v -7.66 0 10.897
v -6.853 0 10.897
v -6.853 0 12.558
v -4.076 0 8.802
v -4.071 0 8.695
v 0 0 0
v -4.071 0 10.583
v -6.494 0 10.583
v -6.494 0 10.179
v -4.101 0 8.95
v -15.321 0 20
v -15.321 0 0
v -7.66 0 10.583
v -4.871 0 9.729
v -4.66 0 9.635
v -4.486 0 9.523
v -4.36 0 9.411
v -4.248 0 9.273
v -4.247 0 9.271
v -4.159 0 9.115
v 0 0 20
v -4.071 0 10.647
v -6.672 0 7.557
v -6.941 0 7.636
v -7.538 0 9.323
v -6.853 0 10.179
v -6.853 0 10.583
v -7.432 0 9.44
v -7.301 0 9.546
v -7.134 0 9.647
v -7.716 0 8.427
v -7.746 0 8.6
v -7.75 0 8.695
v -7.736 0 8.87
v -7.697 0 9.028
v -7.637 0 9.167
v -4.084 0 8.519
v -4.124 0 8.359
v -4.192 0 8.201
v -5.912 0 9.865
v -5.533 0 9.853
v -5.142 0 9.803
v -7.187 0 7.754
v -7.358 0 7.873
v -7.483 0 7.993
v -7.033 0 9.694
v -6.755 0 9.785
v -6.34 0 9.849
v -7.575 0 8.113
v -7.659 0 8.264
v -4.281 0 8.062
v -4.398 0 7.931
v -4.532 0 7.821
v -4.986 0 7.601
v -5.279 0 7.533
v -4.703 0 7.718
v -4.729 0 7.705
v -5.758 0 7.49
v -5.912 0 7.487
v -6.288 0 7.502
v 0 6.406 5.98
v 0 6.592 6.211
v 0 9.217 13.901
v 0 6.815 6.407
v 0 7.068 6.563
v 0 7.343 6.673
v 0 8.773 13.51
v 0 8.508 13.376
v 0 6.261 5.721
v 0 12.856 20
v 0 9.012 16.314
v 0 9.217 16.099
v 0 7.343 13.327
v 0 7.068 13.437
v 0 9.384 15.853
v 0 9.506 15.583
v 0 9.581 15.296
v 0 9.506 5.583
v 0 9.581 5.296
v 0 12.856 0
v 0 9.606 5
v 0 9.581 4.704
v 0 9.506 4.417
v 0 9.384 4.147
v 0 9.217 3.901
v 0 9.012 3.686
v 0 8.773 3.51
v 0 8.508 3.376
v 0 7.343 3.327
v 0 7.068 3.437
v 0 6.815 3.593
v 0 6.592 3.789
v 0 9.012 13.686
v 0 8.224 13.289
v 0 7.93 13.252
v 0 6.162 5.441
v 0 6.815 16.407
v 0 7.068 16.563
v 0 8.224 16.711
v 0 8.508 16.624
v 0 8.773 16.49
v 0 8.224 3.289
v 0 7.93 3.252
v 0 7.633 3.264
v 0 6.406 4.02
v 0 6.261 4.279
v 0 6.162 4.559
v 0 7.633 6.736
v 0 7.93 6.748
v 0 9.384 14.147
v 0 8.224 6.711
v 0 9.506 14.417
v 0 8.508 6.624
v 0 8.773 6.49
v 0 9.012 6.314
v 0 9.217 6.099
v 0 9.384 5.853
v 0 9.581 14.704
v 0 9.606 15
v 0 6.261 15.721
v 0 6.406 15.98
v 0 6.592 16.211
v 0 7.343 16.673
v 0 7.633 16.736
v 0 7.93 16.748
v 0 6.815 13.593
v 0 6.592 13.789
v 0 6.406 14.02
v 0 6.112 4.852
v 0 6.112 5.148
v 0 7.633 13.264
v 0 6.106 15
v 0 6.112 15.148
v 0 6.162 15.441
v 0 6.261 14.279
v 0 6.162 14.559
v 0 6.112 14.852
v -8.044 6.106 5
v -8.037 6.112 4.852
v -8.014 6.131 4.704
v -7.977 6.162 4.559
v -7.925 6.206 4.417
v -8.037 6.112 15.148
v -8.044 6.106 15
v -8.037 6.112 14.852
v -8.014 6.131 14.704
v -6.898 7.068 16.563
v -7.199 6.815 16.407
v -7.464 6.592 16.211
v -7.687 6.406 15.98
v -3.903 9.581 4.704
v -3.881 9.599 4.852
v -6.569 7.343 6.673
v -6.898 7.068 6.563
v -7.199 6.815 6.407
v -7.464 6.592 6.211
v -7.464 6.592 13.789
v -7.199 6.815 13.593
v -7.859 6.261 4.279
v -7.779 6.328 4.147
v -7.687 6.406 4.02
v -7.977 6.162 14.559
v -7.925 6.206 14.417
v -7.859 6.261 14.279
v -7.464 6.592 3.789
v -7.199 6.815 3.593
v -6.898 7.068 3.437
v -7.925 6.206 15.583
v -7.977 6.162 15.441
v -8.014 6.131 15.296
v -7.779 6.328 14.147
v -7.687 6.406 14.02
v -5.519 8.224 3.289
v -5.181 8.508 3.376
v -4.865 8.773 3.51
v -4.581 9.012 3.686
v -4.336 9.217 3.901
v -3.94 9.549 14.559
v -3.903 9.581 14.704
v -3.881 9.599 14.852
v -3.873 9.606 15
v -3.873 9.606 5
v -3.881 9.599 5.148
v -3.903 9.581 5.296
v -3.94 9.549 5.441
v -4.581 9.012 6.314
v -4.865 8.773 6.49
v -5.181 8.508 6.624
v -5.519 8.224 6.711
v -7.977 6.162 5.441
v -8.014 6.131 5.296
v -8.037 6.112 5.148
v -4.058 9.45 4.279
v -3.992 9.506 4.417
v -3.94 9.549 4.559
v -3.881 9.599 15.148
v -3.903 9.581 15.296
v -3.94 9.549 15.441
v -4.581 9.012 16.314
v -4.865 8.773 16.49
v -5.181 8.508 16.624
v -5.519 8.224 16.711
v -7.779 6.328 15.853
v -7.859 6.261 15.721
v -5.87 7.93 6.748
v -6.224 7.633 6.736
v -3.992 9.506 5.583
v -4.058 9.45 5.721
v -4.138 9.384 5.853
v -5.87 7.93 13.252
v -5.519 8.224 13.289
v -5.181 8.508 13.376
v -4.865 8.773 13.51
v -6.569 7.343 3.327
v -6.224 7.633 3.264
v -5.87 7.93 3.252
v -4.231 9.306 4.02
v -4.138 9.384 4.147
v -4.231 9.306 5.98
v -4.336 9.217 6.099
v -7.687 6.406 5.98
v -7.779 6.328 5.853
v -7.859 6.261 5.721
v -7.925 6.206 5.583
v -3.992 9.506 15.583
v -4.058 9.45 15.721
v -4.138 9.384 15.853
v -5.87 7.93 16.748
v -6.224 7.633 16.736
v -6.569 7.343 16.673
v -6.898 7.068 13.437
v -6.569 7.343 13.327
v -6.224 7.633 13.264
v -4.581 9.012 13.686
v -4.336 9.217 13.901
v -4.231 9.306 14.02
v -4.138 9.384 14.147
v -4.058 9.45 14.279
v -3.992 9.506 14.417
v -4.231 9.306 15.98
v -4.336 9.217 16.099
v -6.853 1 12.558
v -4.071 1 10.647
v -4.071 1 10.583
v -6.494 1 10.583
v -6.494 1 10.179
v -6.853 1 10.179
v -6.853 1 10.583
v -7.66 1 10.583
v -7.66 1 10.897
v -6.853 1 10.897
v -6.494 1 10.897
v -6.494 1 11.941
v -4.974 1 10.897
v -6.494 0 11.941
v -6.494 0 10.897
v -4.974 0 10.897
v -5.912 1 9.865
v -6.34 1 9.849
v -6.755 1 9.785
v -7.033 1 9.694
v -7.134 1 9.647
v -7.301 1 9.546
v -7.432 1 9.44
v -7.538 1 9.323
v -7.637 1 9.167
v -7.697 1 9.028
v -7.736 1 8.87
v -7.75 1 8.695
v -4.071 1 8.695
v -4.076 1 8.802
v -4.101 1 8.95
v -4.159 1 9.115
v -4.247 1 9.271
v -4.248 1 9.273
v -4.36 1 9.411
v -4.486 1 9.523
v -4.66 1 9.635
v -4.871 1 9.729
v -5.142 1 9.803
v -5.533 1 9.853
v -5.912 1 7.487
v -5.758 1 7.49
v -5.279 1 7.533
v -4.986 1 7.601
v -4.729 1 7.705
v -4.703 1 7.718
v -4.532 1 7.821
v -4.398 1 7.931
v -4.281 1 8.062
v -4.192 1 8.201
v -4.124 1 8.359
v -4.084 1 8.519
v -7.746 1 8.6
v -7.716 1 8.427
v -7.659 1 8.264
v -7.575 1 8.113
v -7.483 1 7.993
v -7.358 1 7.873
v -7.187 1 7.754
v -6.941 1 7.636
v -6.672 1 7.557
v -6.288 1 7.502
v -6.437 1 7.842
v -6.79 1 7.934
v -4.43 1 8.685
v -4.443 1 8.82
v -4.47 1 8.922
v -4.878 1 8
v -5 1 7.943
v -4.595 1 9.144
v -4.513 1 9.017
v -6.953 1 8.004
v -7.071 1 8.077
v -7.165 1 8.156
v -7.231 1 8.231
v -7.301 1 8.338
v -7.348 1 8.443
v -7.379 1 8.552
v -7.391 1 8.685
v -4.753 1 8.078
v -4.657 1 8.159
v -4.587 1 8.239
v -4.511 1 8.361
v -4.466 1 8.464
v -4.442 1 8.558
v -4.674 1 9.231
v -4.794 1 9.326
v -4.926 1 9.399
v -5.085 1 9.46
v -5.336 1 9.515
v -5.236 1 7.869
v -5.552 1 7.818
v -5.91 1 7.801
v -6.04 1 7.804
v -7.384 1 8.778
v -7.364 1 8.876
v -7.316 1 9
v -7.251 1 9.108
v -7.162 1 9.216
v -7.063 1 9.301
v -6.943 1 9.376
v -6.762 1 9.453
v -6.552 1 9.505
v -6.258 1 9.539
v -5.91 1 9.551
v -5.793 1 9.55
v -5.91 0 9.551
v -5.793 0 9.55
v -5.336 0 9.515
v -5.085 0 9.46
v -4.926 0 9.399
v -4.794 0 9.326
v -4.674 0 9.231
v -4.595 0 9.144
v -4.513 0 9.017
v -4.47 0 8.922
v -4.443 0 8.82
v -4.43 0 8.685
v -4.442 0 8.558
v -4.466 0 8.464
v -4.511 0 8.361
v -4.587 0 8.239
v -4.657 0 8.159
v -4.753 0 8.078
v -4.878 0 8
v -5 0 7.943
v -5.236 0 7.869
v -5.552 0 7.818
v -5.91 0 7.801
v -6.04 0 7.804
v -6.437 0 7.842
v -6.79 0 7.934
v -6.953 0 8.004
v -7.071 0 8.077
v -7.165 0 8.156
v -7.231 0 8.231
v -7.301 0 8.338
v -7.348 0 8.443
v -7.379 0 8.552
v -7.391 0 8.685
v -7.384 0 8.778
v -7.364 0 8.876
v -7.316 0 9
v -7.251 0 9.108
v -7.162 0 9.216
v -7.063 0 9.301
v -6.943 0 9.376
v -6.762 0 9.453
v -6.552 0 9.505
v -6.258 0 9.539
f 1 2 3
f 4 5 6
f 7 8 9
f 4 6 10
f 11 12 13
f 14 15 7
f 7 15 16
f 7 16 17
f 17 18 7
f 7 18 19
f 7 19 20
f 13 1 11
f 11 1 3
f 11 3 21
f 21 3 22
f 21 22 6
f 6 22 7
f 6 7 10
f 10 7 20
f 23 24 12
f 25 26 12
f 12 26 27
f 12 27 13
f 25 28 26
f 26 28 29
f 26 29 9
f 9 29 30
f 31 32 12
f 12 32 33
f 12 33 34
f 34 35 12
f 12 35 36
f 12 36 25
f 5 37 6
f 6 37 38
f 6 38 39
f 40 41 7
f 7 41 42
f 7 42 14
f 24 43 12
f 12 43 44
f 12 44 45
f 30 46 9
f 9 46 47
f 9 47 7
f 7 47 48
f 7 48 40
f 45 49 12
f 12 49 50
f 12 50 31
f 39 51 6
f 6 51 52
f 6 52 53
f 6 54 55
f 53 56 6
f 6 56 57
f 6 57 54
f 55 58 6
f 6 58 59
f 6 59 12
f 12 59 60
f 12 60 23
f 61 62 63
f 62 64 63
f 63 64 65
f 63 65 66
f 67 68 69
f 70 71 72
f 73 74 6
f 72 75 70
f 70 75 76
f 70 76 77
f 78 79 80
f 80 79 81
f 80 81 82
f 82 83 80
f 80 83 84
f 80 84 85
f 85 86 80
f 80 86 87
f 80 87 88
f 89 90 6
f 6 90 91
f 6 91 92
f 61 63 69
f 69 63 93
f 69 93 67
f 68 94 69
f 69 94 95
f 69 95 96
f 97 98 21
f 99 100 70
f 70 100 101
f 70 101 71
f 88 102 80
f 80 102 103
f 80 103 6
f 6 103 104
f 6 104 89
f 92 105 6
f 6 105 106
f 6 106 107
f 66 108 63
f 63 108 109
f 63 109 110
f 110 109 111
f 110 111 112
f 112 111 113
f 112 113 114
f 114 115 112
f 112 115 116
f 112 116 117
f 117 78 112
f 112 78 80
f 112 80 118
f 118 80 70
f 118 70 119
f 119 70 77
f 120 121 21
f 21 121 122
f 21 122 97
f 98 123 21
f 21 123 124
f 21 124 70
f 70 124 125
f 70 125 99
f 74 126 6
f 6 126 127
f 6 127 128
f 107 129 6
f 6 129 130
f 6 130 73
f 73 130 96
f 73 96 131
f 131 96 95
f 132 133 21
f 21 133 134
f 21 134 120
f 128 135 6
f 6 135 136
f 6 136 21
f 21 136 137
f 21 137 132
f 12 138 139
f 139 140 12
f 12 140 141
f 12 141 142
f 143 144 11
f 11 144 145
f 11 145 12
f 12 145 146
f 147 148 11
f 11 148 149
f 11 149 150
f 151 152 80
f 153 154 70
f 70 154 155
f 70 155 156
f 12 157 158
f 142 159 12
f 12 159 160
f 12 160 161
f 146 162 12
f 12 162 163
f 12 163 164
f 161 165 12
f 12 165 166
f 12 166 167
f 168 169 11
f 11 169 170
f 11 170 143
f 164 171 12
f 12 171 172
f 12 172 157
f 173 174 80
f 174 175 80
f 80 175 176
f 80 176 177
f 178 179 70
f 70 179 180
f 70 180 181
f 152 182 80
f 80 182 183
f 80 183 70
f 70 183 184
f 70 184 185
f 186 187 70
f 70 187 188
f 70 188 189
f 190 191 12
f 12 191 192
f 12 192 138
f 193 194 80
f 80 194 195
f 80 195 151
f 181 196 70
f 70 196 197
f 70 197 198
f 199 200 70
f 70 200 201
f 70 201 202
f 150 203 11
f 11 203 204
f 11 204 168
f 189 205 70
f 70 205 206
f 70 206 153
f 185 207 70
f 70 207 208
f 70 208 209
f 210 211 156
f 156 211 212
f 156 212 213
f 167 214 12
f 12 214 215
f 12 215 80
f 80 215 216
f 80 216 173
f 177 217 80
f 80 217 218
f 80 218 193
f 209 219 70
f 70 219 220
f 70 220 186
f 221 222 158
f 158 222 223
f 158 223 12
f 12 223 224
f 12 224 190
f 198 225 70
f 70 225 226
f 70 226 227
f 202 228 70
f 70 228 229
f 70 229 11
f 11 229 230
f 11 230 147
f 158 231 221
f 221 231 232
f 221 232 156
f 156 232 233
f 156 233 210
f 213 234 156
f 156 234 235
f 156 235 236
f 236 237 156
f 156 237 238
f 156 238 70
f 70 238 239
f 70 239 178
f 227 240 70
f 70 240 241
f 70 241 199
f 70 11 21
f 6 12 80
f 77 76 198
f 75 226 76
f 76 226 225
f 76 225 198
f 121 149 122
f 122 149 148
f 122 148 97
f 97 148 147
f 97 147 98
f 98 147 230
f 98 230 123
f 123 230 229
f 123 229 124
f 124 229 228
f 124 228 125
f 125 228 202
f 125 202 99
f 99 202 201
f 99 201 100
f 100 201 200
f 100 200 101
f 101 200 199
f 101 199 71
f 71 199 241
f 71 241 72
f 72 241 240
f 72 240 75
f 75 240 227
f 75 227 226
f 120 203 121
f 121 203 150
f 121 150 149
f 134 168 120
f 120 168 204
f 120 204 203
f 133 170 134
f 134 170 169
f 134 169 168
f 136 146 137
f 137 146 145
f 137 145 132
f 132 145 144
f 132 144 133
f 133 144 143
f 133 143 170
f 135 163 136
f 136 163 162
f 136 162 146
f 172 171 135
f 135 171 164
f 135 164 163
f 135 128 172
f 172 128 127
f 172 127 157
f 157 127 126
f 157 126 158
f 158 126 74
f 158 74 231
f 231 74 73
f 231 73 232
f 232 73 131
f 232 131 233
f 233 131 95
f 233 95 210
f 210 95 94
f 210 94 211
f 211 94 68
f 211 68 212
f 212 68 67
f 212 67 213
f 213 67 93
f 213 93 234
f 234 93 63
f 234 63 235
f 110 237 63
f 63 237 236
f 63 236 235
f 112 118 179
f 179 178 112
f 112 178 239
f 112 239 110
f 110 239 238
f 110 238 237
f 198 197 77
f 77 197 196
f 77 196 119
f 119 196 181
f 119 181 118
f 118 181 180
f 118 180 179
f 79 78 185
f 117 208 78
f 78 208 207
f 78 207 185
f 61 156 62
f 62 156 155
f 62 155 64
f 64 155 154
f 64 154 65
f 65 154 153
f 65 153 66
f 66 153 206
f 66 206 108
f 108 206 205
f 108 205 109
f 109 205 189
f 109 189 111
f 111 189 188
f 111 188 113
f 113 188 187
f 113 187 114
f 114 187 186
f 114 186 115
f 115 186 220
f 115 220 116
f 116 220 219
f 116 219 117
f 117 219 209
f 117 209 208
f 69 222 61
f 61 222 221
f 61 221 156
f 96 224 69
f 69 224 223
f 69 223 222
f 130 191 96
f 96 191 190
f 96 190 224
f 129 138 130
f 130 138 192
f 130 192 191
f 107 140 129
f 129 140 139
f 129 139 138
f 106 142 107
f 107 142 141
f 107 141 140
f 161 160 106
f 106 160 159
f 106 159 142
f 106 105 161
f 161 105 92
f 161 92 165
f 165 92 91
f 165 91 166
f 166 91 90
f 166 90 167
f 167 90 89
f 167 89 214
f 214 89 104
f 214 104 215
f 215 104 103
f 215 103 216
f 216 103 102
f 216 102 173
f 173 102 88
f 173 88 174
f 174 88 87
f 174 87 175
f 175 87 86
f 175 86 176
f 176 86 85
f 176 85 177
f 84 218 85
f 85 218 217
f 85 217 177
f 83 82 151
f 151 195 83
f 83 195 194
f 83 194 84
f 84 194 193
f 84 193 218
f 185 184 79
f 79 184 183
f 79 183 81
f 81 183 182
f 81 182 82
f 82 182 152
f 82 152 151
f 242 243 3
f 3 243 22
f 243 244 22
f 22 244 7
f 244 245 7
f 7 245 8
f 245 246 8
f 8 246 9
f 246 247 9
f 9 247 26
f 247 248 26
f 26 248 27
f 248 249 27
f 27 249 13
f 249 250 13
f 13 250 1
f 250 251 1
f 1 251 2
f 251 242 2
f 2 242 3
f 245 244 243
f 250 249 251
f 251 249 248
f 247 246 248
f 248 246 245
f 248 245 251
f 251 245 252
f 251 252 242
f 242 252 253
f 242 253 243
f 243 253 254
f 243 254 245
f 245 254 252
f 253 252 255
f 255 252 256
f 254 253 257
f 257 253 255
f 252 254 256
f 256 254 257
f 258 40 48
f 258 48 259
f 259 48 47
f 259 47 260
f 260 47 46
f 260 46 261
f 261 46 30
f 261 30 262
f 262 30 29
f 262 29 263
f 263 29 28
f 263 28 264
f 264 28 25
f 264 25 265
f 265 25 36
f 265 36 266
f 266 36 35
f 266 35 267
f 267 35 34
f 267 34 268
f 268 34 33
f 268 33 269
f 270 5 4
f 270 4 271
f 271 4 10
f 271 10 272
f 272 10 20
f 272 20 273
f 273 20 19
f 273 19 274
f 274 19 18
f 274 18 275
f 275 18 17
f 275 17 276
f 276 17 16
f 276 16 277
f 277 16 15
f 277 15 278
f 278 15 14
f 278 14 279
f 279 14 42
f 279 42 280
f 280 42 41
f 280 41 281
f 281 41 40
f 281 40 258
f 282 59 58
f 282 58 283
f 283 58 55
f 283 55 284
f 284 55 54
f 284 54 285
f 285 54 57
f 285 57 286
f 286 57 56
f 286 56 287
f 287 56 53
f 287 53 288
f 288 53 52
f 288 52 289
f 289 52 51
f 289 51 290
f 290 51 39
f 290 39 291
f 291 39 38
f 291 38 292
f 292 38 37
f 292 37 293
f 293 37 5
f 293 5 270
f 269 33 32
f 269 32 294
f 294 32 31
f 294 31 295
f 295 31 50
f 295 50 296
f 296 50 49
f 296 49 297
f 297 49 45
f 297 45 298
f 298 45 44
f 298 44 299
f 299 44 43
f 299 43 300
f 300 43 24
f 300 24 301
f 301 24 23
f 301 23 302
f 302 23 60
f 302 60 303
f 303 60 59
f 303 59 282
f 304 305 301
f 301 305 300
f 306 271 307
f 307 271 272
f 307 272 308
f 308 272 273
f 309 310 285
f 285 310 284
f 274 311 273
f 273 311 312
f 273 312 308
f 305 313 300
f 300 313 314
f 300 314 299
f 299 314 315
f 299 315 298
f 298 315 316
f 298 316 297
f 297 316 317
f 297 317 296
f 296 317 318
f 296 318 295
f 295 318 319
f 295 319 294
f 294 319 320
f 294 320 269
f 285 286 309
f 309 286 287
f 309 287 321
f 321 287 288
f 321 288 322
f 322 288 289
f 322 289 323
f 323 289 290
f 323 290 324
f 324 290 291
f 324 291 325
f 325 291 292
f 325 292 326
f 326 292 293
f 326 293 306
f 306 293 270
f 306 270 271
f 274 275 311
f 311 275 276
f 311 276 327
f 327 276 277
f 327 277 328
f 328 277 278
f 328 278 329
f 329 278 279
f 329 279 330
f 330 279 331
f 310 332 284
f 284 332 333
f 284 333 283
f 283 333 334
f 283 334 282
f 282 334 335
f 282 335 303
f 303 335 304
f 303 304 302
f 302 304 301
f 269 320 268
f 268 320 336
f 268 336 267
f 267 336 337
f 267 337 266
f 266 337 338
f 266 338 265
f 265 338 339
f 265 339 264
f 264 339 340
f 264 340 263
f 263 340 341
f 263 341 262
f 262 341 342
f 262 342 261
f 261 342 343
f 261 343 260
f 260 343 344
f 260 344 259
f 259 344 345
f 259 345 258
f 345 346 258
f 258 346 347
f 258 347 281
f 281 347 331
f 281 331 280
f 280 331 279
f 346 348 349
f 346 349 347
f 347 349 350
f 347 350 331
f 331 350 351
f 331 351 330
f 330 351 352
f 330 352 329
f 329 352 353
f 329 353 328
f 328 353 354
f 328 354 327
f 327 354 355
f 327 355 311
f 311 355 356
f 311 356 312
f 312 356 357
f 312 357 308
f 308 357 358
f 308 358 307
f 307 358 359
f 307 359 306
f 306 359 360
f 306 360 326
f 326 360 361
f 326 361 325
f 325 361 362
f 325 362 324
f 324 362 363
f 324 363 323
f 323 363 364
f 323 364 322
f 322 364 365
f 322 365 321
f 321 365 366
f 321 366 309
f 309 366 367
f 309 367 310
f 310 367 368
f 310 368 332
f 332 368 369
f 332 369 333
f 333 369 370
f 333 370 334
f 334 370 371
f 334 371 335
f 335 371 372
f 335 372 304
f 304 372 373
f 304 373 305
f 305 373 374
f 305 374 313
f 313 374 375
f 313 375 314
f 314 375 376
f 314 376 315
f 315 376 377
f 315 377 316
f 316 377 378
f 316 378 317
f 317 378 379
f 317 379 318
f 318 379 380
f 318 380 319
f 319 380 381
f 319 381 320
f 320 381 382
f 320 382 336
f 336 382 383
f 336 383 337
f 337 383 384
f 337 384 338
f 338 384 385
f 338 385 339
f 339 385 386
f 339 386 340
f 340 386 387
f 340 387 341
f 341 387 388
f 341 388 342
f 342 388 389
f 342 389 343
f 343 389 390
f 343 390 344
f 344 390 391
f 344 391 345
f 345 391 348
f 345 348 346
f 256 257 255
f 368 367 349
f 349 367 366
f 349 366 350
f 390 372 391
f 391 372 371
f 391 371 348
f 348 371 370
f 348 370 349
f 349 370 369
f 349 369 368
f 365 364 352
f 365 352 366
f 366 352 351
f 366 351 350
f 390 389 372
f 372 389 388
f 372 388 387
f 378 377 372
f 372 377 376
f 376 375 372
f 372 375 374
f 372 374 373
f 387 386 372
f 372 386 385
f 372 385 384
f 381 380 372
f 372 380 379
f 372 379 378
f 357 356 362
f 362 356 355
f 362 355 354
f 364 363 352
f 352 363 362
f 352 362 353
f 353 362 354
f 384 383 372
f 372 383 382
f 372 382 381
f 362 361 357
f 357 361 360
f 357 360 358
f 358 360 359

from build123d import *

# Parameters (mm, degrees)
BOSS_EXTRUDE1_DEPTH = 20
CUT_EXTRUDE1_REACH  = 30.284
SKETCH3_R           = 1.75
CUT_EXTRUDE2_DEPTH  = 1


with BuildPart() as part:
    # Sketch1 → Boss-Extrude1 (new body)
    with BuildSketch(Plane.XY):
        Polygon((0, 0), (-15.320888862, 0), (0, 12.855752194), align=None)
    extrude(amount=BOSS_EXTRUDE1_DEPTH)

    # Cut-Extrude1: up to this plane
    cut_extrude1_end = Plane(origin=(-15.320888862, 0, 20), z_dir=(0.6427876096865347, -0.7660444431189819, 0))
    # Sketch3 → Cut-Extrude1 (cut, up to the surface)
    with BuildSketch(Plane(origin=(0, 0, 0), x_dir=(0, 0, -1), z_dir=(1, 0, 0)), mode=Mode.PRIVATE) as cut_extrude1_sk1:
        with Locations(Location((-5, 7.855752194, 0), (0, 0, 90))):
            Circle(SKETCH3_R)
    cut_extrude1_tool1 = split(extrude(cut_extrude1_sk1.sketch, amount=-CUT_EXTRUDE1_REACH, mode=Mode.PRIVATE), bisect_by=cut_extrude1_end, keep=Keep.BOTH, mode=Mode.PRIVATE)
    add(cut_extrude1_tool1.solids().sort_by_distance((0, 7.855752, 5))[0], mode=Mode.SUBTRACT)
    # Sketch3 → Cut-Extrude1 (cut, up to the surface)
    with BuildSketch(Plane(origin=(0, 0, 0), x_dir=(0, 0, -1), z_dir=(1, 0, 0)), mode=Mode.PRIVATE) as cut_extrude1_sk2:
        with Locations(Location((-15, 7.855752194, 0), (0, 0, 90))):
            Circle(SKETCH3_R)
    cut_extrude1_tool2 = split(extrude(cut_extrude1_sk2.sketch, amount=-CUT_EXTRUDE1_REACH, mode=Mode.PRIVATE), bisect_by=cut_extrude1_end, keep=Keep.BOTH, mode=Mode.PRIVATE)
    add(cut_extrude1_tool2.solids().sort_by_distance((0, 7.855752, 15))[0], mode=Mode.SUBTRACT)

    # Sketch4 → Cut-Extrude2 (cut)
    # profile 1 of 2: a face of its own
    with BuildSketch(Plane.XZ):
        with BuildLine():
            add(Edge.make_bspline(
                [(-5.911846675, 9.865384615), (-5.855749287, 9.865056597), (-5.746779303, 9.864419417), (-5.587994661, 9.857330996), (-5.439034371, 9.845555655), (-5.299891307, 9.829418279), (-5.170529535, 9.809780308), (-5.051294804, 9.783564792), (-4.941635109, 9.753752086), (-4.841193358, 9.719199315), (-4.748614631, 9.680212646), (-4.662193041, 9.637774437), (-4.582038305, 9.590223642), (-4.506946286, 9.540196681), (-4.437755047, 9.485865435), (-4.374595619, 9.427802965), (-4.317429865, 9.365433315), (-4.265577415, 9.299990015), (-4.220407322, 9.231059481), (-4.179706065, 9.160766611), (-4.146300055, 9.087871031), (-4.118851035, 9.013037572), (-4.096856831, 8.936483858), (-4.081625887, 8.857893574), (-4.07208018, 8.777247733), (-4.071164983, 8.72281691), (-4.070700841, 8.69521234)],
                knots=[0, 0, 0, 0, 1.646377244, 3.198111528, 4.663803227, 6.031090796, 7.308794487, 8.502186765, 9.612154809, 10.642545331, 11.617106989, 12.558866172, 13.465886467, 14.35053239, 15.20542558, 16.045215227, 16.865619885, 17.686225247, 18.492864914, 19.282407821, 20.068097601, 20.842842034, 21.620163247, 22.403093475, 23.190129512, 24, 24, 24, 24], degree=3))
            add(Edge.make_bspline(
                [(-4.070700841, 8.69521234), (-4.071188657, 8.667376861), (-4.072158768, 8.612020852), (-4.08148271, 8.530180477), (-4.096953833, 8.450230795), (-4.118874808, 8.372512657), (-4.146070484, 8.29638767), (-4.180157602, 8.222451263), (-4.219836469, 8.150244181), (-4.266460346, 8.080913893), (-4.318442622, 8.013699278), (-4.377205291, 7.950251315), (-4.44215501, 7.890564229), (-4.512596874, 7.833888924), (-4.589881959, 7.781833327), (-4.672666069, 7.732259894), (-4.762396934, 7.687887858), (-4.857577402, 7.645153183), (-4.96084106, 7.608266197), (-5.071605821, 7.574999951), (-5.191180008, 7.548120983), (-5.318936253, 7.52573171), (-5.455343736, 7.508386814), (-5.600110052, 7.495754172), (-5.753330442, 7.489081087), (-5.858088292, 7.487824386), (-5.911846675, 7.487179487)],
                knots=[0, 0, 0, 0, 0.810914788, 1.612654377, 2.396697861, 3.181598691, 3.963628158, 4.749916497, 5.551656086, 6.361998678, 7.18212741, 8.025565596, 8.878627764, 9.750805457, 10.657531673, 11.591944965, 12.560506719, 13.57287815, 14.630710178, 15.753379473, 16.941251878, 18.199788006, 19.531962791, 20.947069417, 22.433333509, 24, 24, 24, 24], degree=3))
            add(Edge.make_bspline(
                [(-5.911846675, 7.487179487), (-5.965370383, 7.487831877), (-6.069659145, 7.489103032), (-6.222192885, 7.495670613), (-6.366181214, 7.508668333), (-6.502024942, 7.524744462), (-6.628917519, 7.547644686), (-6.748065541, 7.573678205), (-6.85844078, 7.606035075), (-6.961159835, 7.64241929), (-7.05587398, 7.684226665), (-7.144829164, 7.728990868), (-7.227545725, 7.778260008), (-7.304829686, 7.830626053), (-7.375882464, 7.886819625), (-7.440879663, 7.946759451), (-7.499778411, 8.010491153), (-7.552470928, 8.077857734), (-7.598552071, 8.148278684), (-7.6397412, 8.220244748), (-7.673163625, 8.295192302), (-7.701382826, 8.371455698), (-7.723354231, 8.449754531), (-7.738397903, 8.530012), (-7.748977846, 8.611965265), (-7.749783232, 8.667367231), (-7.750188021, 8.69521234)],
                knots=[0, 0, 0, 0, 1.56130642, 3.042141888, 4.451772327, 5.777565838, 7.030558081, 8.211376819, 9.333164717, 10.383253789, 11.387583522, 12.350962576, 13.286244149, 14.193812918, 15.072134482, 15.925989337, 16.770211267, 17.600669898, 18.417446232, 19.22325363, 20.01647746, 20.807971184, 21.593601364, 22.38506573, 23.188331689, 24, 24, 24, 24], degree=3))
            add(Edge.make_bspline(
                [(-7.750188021, 8.69521234), (-7.749719413, 8.722815788), (-7.748795409, 8.777244401), (-7.739314215, 8.857906439), (-7.723853582, 8.936374154), (-7.702858119, 9.012804408), (-7.67617413, 9.087353616), (-7.642233085, 9.159291496), (-7.602866753, 9.2295681), (-7.558080183, 9.297862753), (-7.50675594, 9.3628738), (-7.449992852, 9.424973717), (-7.386367185, 9.482594504), (-7.316897365, 9.536244807), (-7.242172844, 9.58715603), (-7.161457528, 9.634240862), (-7.074226219, 9.676596293), (-6.981136428, 9.716456686), (-6.87995648, 9.751593547), (-6.769711906, 9.782396514), (-6.649792857, 9.808075096), (-6.520555338, 9.828725945), (-6.38190262, 9.845750492), (-6.233590578, 9.857275238), (-6.075747171, 9.864425062), (-5.967477141, 9.865058928), (-5.911846675, 9.865384615)],
                knots=[0, 0, 0, 0, 0.810940842, 1.599017053, 2.38298203, 3.159479784, 3.926441347, 4.70693857, 5.494146311, 6.292334103, 7.104379492, 7.925868426, 8.762126819, 9.623561095, 10.503686106, 11.41783325, 12.366995289, 13.351843594, 14.392337808, 15.512229747, 16.713911458, 17.994391108, 19.357476964, 20.818259213, 22.365182633, 24, 24, 24, 24], degree=3))
        make_face()
        with BuildLine():
            add(Edge.make_bspline(
                [(-5.910444431, 9.551282051), (-5.95719313, 9.551162604), (-6.047923175, 9.550930781), (-6.179766436, 9.54487458), (-6.302736765, 9.536624349), (-6.416990299, 9.525983049), (-6.52214032, 9.51018011), (-6.618909975, 9.492473291), (-6.706787304, 9.470925304), (-6.786374812, 9.445429949), (-6.859024912, 9.416392001), (-6.926622524, 9.384682123), (-6.989987212, 9.350635607), (-7.048475401, 9.312465852), (-7.102669298, 9.271038631), (-7.152413166, 9.226285917), (-7.19748996, 9.178286418), (-7.250977945, 9.111839375), (-7.306904454, 9.024548906), (-7.355005521, 8.914002071), (-7.3854296, 8.800360685), (-7.389287877, 8.723205872), (-7.391213662, 8.684695513)],
                knots=[0, 0, 0, 0, 1.459116078, 2.831857795, 4.118796693, 5.306371758, 6.412361096, 7.436813035, 8.376339383, 9.234574298, 10.043323891, 10.816788787, 11.564361537, 12.286735248, 12.994408768, 13.691741332, 14.372975427, 15.047457468, 16.352811911, 17.594285292, 18.799233213, 20, 20, 20, 20], degree=3))
            add(Edge.make_bspline(
                [(-7.391213662, 8.684695513), (-7.389615881, 8.645937841), (-7.386423618, 8.568502518), (-7.355624881, 8.455368723), (-7.309155342, 8.345538453), (-7.254207836, 8.259466512), (-7.201879507, 8.193983969), (-7.157264858, 8.147066979), (-7.107308991, 8.10400493), (-7.053409695, 8.063162856), (-6.994537211, 8.02570378), (-6.930974636, 7.991640642), (-6.862545458, 7.960557295), (-6.814775719, 7.942848249), (-6.790352284, 7.933794071)],
                knots=[0, 0, 0, 0, 1.353760809, 2.704726607, 4.075137775, 5.516104923, 6.260822281, 7.007110065, 7.778089737, 8.566572457, 9.372053459, 10.217411131, 11.088608312, 12, 12, 12, 12], degree=3))
            add(Edge.make_bspline(
                [(-6.790352284, 7.933794071), (-6.759122544, 7.923242303), (-6.69571278, 7.901817689), (-6.597349128, 7.874205915), (-6.494146364, 7.852460515), (-6.386721247, 7.83289715), (-6.274281546, 7.819544094), (-6.157175162, 7.80879628), (-6.0353138, 7.802465594), (-5.952518809, 7.801680842), (-5.910444431, 7.801282051)],
                knots=[0, 0, 0, 0, 0.884706709, 1.796334032, 2.740027952, 3.714592787, 4.726048262, 5.777819803, 6.87074269, 8, 8, 8, 8], degree=3))
            add(Edge.make_bspline(
                [(-5.910444431, 7.801282051), (-5.868370958, 7.801721875), (-5.786056068, 7.802582372), (-5.665629311, 7.80823591), (-5.551049969, 7.817320676), (-5.4422141, 7.829616707), (-5.339315419, 7.846496558), (-5.242206679, 7.866767579), (-5.150914061, 7.890533025), (-5.065202128, 7.9177927), (-4.985378952, 7.948513976), (-4.911270741, 7.982451775), (-4.842484619, 8.018668005), (-4.779218028, 8.058011632), (-4.721185397, 8.100006966), (-4.669550825, 8.145764604), (-4.622713851, 8.193468954), (-4.569251284, 8.260286147), (-4.514739588, 8.347760433), (-4.464573828, 8.456606082), (-4.435765535, 8.569876726), (-4.431703848, 8.64645018), (-4.4296752, 8.684695513)],
                knots=[0, 0, 0, 0, 1.313668642, 2.570134578, 3.763346207, 4.902004944, 5.98888779, 7.017888835, 7.998425394, 8.933058446, 9.82474457, 10.667209444, 11.476765193, 12.250262638, 12.991704352, 13.7104269, 14.401925311, 15.076585796, 16.378385137, 17.609787933, 18.806186071, 20, 20, 20, 20], degree=3))
            add(Edge.make_bspline(
                [(-4.4296752, 8.684695513), (-4.43170403, 8.72340773), (-4.435765385, 8.80090269), (-4.464498285, 8.915326021), (-4.514272533, 9.024947029), (-4.569603302, 9.111719517), (-4.621767413, 9.178452408), (-4.667129522, 9.225575145), (-4.717023873, 9.269629998), (-4.770988327, 9.311091733), (-4.829506015, 9.349224743), (-4.892861488, 9.383285193), (-4.960465382, 9.414976868), (-5.033098953, 9.444077159), (-5.112806444, 9.469336238), (-5.200240265, 9.491913196), (-5.297100307, 9.509609273), (-5.402544299, 9.525051618), (-5.516938287, 9.536825531), (-5.640192121, 9.544853401), (-5.77226338, 9.550941739), (-5.863461555, 9.551166342), (-5.910444431, 9.551282051)],
                knots=[0, 0, 0, 0, 1.207964612, 2.418129846, 3.655795183, 4.951004962, 5.620895151, 6.296795572, 6.989224116, 7.696855977, 8.419187164, 9.166715907, 9.940135271, 10.748837255, 11.607021648, 12.548275234, 13.5654991, 14.678641405, 15.874140913, 17.15372626, 18.533675393, 20, 20, 20, 20], degree=3))
        make_face(mode=Mode.SUBTRACT)
    # profile 2 of 2: a face of its own
    with BuildSketch(Plane.XZ):
        Polygon((-4.070700841, 10.647135417), (-4.070700841, 10.583333333), (-6.493777765, 10.583333333), (-6.493777765, 10.179487179), (-6.852752123, 10.179487179), (-6.852752123, 10.583333333), (-7.660444431, 10.583333333), (-7.660444431, 10.897435897), (-6.852752123, 10.897435897), (-6.852752123, 12.557692308), align=None)
        Polygon((-6.493777765, 10.897435897), (-4.973745713, 10.897435897), (-6.493777765, 11.940705128), align=None, mode=Mode.SUBTRACT)
    extrude(amount=-CUT_EXTRUDE2_DEPTH, mode=Mode.SUBTRACT)


solid = part.part
